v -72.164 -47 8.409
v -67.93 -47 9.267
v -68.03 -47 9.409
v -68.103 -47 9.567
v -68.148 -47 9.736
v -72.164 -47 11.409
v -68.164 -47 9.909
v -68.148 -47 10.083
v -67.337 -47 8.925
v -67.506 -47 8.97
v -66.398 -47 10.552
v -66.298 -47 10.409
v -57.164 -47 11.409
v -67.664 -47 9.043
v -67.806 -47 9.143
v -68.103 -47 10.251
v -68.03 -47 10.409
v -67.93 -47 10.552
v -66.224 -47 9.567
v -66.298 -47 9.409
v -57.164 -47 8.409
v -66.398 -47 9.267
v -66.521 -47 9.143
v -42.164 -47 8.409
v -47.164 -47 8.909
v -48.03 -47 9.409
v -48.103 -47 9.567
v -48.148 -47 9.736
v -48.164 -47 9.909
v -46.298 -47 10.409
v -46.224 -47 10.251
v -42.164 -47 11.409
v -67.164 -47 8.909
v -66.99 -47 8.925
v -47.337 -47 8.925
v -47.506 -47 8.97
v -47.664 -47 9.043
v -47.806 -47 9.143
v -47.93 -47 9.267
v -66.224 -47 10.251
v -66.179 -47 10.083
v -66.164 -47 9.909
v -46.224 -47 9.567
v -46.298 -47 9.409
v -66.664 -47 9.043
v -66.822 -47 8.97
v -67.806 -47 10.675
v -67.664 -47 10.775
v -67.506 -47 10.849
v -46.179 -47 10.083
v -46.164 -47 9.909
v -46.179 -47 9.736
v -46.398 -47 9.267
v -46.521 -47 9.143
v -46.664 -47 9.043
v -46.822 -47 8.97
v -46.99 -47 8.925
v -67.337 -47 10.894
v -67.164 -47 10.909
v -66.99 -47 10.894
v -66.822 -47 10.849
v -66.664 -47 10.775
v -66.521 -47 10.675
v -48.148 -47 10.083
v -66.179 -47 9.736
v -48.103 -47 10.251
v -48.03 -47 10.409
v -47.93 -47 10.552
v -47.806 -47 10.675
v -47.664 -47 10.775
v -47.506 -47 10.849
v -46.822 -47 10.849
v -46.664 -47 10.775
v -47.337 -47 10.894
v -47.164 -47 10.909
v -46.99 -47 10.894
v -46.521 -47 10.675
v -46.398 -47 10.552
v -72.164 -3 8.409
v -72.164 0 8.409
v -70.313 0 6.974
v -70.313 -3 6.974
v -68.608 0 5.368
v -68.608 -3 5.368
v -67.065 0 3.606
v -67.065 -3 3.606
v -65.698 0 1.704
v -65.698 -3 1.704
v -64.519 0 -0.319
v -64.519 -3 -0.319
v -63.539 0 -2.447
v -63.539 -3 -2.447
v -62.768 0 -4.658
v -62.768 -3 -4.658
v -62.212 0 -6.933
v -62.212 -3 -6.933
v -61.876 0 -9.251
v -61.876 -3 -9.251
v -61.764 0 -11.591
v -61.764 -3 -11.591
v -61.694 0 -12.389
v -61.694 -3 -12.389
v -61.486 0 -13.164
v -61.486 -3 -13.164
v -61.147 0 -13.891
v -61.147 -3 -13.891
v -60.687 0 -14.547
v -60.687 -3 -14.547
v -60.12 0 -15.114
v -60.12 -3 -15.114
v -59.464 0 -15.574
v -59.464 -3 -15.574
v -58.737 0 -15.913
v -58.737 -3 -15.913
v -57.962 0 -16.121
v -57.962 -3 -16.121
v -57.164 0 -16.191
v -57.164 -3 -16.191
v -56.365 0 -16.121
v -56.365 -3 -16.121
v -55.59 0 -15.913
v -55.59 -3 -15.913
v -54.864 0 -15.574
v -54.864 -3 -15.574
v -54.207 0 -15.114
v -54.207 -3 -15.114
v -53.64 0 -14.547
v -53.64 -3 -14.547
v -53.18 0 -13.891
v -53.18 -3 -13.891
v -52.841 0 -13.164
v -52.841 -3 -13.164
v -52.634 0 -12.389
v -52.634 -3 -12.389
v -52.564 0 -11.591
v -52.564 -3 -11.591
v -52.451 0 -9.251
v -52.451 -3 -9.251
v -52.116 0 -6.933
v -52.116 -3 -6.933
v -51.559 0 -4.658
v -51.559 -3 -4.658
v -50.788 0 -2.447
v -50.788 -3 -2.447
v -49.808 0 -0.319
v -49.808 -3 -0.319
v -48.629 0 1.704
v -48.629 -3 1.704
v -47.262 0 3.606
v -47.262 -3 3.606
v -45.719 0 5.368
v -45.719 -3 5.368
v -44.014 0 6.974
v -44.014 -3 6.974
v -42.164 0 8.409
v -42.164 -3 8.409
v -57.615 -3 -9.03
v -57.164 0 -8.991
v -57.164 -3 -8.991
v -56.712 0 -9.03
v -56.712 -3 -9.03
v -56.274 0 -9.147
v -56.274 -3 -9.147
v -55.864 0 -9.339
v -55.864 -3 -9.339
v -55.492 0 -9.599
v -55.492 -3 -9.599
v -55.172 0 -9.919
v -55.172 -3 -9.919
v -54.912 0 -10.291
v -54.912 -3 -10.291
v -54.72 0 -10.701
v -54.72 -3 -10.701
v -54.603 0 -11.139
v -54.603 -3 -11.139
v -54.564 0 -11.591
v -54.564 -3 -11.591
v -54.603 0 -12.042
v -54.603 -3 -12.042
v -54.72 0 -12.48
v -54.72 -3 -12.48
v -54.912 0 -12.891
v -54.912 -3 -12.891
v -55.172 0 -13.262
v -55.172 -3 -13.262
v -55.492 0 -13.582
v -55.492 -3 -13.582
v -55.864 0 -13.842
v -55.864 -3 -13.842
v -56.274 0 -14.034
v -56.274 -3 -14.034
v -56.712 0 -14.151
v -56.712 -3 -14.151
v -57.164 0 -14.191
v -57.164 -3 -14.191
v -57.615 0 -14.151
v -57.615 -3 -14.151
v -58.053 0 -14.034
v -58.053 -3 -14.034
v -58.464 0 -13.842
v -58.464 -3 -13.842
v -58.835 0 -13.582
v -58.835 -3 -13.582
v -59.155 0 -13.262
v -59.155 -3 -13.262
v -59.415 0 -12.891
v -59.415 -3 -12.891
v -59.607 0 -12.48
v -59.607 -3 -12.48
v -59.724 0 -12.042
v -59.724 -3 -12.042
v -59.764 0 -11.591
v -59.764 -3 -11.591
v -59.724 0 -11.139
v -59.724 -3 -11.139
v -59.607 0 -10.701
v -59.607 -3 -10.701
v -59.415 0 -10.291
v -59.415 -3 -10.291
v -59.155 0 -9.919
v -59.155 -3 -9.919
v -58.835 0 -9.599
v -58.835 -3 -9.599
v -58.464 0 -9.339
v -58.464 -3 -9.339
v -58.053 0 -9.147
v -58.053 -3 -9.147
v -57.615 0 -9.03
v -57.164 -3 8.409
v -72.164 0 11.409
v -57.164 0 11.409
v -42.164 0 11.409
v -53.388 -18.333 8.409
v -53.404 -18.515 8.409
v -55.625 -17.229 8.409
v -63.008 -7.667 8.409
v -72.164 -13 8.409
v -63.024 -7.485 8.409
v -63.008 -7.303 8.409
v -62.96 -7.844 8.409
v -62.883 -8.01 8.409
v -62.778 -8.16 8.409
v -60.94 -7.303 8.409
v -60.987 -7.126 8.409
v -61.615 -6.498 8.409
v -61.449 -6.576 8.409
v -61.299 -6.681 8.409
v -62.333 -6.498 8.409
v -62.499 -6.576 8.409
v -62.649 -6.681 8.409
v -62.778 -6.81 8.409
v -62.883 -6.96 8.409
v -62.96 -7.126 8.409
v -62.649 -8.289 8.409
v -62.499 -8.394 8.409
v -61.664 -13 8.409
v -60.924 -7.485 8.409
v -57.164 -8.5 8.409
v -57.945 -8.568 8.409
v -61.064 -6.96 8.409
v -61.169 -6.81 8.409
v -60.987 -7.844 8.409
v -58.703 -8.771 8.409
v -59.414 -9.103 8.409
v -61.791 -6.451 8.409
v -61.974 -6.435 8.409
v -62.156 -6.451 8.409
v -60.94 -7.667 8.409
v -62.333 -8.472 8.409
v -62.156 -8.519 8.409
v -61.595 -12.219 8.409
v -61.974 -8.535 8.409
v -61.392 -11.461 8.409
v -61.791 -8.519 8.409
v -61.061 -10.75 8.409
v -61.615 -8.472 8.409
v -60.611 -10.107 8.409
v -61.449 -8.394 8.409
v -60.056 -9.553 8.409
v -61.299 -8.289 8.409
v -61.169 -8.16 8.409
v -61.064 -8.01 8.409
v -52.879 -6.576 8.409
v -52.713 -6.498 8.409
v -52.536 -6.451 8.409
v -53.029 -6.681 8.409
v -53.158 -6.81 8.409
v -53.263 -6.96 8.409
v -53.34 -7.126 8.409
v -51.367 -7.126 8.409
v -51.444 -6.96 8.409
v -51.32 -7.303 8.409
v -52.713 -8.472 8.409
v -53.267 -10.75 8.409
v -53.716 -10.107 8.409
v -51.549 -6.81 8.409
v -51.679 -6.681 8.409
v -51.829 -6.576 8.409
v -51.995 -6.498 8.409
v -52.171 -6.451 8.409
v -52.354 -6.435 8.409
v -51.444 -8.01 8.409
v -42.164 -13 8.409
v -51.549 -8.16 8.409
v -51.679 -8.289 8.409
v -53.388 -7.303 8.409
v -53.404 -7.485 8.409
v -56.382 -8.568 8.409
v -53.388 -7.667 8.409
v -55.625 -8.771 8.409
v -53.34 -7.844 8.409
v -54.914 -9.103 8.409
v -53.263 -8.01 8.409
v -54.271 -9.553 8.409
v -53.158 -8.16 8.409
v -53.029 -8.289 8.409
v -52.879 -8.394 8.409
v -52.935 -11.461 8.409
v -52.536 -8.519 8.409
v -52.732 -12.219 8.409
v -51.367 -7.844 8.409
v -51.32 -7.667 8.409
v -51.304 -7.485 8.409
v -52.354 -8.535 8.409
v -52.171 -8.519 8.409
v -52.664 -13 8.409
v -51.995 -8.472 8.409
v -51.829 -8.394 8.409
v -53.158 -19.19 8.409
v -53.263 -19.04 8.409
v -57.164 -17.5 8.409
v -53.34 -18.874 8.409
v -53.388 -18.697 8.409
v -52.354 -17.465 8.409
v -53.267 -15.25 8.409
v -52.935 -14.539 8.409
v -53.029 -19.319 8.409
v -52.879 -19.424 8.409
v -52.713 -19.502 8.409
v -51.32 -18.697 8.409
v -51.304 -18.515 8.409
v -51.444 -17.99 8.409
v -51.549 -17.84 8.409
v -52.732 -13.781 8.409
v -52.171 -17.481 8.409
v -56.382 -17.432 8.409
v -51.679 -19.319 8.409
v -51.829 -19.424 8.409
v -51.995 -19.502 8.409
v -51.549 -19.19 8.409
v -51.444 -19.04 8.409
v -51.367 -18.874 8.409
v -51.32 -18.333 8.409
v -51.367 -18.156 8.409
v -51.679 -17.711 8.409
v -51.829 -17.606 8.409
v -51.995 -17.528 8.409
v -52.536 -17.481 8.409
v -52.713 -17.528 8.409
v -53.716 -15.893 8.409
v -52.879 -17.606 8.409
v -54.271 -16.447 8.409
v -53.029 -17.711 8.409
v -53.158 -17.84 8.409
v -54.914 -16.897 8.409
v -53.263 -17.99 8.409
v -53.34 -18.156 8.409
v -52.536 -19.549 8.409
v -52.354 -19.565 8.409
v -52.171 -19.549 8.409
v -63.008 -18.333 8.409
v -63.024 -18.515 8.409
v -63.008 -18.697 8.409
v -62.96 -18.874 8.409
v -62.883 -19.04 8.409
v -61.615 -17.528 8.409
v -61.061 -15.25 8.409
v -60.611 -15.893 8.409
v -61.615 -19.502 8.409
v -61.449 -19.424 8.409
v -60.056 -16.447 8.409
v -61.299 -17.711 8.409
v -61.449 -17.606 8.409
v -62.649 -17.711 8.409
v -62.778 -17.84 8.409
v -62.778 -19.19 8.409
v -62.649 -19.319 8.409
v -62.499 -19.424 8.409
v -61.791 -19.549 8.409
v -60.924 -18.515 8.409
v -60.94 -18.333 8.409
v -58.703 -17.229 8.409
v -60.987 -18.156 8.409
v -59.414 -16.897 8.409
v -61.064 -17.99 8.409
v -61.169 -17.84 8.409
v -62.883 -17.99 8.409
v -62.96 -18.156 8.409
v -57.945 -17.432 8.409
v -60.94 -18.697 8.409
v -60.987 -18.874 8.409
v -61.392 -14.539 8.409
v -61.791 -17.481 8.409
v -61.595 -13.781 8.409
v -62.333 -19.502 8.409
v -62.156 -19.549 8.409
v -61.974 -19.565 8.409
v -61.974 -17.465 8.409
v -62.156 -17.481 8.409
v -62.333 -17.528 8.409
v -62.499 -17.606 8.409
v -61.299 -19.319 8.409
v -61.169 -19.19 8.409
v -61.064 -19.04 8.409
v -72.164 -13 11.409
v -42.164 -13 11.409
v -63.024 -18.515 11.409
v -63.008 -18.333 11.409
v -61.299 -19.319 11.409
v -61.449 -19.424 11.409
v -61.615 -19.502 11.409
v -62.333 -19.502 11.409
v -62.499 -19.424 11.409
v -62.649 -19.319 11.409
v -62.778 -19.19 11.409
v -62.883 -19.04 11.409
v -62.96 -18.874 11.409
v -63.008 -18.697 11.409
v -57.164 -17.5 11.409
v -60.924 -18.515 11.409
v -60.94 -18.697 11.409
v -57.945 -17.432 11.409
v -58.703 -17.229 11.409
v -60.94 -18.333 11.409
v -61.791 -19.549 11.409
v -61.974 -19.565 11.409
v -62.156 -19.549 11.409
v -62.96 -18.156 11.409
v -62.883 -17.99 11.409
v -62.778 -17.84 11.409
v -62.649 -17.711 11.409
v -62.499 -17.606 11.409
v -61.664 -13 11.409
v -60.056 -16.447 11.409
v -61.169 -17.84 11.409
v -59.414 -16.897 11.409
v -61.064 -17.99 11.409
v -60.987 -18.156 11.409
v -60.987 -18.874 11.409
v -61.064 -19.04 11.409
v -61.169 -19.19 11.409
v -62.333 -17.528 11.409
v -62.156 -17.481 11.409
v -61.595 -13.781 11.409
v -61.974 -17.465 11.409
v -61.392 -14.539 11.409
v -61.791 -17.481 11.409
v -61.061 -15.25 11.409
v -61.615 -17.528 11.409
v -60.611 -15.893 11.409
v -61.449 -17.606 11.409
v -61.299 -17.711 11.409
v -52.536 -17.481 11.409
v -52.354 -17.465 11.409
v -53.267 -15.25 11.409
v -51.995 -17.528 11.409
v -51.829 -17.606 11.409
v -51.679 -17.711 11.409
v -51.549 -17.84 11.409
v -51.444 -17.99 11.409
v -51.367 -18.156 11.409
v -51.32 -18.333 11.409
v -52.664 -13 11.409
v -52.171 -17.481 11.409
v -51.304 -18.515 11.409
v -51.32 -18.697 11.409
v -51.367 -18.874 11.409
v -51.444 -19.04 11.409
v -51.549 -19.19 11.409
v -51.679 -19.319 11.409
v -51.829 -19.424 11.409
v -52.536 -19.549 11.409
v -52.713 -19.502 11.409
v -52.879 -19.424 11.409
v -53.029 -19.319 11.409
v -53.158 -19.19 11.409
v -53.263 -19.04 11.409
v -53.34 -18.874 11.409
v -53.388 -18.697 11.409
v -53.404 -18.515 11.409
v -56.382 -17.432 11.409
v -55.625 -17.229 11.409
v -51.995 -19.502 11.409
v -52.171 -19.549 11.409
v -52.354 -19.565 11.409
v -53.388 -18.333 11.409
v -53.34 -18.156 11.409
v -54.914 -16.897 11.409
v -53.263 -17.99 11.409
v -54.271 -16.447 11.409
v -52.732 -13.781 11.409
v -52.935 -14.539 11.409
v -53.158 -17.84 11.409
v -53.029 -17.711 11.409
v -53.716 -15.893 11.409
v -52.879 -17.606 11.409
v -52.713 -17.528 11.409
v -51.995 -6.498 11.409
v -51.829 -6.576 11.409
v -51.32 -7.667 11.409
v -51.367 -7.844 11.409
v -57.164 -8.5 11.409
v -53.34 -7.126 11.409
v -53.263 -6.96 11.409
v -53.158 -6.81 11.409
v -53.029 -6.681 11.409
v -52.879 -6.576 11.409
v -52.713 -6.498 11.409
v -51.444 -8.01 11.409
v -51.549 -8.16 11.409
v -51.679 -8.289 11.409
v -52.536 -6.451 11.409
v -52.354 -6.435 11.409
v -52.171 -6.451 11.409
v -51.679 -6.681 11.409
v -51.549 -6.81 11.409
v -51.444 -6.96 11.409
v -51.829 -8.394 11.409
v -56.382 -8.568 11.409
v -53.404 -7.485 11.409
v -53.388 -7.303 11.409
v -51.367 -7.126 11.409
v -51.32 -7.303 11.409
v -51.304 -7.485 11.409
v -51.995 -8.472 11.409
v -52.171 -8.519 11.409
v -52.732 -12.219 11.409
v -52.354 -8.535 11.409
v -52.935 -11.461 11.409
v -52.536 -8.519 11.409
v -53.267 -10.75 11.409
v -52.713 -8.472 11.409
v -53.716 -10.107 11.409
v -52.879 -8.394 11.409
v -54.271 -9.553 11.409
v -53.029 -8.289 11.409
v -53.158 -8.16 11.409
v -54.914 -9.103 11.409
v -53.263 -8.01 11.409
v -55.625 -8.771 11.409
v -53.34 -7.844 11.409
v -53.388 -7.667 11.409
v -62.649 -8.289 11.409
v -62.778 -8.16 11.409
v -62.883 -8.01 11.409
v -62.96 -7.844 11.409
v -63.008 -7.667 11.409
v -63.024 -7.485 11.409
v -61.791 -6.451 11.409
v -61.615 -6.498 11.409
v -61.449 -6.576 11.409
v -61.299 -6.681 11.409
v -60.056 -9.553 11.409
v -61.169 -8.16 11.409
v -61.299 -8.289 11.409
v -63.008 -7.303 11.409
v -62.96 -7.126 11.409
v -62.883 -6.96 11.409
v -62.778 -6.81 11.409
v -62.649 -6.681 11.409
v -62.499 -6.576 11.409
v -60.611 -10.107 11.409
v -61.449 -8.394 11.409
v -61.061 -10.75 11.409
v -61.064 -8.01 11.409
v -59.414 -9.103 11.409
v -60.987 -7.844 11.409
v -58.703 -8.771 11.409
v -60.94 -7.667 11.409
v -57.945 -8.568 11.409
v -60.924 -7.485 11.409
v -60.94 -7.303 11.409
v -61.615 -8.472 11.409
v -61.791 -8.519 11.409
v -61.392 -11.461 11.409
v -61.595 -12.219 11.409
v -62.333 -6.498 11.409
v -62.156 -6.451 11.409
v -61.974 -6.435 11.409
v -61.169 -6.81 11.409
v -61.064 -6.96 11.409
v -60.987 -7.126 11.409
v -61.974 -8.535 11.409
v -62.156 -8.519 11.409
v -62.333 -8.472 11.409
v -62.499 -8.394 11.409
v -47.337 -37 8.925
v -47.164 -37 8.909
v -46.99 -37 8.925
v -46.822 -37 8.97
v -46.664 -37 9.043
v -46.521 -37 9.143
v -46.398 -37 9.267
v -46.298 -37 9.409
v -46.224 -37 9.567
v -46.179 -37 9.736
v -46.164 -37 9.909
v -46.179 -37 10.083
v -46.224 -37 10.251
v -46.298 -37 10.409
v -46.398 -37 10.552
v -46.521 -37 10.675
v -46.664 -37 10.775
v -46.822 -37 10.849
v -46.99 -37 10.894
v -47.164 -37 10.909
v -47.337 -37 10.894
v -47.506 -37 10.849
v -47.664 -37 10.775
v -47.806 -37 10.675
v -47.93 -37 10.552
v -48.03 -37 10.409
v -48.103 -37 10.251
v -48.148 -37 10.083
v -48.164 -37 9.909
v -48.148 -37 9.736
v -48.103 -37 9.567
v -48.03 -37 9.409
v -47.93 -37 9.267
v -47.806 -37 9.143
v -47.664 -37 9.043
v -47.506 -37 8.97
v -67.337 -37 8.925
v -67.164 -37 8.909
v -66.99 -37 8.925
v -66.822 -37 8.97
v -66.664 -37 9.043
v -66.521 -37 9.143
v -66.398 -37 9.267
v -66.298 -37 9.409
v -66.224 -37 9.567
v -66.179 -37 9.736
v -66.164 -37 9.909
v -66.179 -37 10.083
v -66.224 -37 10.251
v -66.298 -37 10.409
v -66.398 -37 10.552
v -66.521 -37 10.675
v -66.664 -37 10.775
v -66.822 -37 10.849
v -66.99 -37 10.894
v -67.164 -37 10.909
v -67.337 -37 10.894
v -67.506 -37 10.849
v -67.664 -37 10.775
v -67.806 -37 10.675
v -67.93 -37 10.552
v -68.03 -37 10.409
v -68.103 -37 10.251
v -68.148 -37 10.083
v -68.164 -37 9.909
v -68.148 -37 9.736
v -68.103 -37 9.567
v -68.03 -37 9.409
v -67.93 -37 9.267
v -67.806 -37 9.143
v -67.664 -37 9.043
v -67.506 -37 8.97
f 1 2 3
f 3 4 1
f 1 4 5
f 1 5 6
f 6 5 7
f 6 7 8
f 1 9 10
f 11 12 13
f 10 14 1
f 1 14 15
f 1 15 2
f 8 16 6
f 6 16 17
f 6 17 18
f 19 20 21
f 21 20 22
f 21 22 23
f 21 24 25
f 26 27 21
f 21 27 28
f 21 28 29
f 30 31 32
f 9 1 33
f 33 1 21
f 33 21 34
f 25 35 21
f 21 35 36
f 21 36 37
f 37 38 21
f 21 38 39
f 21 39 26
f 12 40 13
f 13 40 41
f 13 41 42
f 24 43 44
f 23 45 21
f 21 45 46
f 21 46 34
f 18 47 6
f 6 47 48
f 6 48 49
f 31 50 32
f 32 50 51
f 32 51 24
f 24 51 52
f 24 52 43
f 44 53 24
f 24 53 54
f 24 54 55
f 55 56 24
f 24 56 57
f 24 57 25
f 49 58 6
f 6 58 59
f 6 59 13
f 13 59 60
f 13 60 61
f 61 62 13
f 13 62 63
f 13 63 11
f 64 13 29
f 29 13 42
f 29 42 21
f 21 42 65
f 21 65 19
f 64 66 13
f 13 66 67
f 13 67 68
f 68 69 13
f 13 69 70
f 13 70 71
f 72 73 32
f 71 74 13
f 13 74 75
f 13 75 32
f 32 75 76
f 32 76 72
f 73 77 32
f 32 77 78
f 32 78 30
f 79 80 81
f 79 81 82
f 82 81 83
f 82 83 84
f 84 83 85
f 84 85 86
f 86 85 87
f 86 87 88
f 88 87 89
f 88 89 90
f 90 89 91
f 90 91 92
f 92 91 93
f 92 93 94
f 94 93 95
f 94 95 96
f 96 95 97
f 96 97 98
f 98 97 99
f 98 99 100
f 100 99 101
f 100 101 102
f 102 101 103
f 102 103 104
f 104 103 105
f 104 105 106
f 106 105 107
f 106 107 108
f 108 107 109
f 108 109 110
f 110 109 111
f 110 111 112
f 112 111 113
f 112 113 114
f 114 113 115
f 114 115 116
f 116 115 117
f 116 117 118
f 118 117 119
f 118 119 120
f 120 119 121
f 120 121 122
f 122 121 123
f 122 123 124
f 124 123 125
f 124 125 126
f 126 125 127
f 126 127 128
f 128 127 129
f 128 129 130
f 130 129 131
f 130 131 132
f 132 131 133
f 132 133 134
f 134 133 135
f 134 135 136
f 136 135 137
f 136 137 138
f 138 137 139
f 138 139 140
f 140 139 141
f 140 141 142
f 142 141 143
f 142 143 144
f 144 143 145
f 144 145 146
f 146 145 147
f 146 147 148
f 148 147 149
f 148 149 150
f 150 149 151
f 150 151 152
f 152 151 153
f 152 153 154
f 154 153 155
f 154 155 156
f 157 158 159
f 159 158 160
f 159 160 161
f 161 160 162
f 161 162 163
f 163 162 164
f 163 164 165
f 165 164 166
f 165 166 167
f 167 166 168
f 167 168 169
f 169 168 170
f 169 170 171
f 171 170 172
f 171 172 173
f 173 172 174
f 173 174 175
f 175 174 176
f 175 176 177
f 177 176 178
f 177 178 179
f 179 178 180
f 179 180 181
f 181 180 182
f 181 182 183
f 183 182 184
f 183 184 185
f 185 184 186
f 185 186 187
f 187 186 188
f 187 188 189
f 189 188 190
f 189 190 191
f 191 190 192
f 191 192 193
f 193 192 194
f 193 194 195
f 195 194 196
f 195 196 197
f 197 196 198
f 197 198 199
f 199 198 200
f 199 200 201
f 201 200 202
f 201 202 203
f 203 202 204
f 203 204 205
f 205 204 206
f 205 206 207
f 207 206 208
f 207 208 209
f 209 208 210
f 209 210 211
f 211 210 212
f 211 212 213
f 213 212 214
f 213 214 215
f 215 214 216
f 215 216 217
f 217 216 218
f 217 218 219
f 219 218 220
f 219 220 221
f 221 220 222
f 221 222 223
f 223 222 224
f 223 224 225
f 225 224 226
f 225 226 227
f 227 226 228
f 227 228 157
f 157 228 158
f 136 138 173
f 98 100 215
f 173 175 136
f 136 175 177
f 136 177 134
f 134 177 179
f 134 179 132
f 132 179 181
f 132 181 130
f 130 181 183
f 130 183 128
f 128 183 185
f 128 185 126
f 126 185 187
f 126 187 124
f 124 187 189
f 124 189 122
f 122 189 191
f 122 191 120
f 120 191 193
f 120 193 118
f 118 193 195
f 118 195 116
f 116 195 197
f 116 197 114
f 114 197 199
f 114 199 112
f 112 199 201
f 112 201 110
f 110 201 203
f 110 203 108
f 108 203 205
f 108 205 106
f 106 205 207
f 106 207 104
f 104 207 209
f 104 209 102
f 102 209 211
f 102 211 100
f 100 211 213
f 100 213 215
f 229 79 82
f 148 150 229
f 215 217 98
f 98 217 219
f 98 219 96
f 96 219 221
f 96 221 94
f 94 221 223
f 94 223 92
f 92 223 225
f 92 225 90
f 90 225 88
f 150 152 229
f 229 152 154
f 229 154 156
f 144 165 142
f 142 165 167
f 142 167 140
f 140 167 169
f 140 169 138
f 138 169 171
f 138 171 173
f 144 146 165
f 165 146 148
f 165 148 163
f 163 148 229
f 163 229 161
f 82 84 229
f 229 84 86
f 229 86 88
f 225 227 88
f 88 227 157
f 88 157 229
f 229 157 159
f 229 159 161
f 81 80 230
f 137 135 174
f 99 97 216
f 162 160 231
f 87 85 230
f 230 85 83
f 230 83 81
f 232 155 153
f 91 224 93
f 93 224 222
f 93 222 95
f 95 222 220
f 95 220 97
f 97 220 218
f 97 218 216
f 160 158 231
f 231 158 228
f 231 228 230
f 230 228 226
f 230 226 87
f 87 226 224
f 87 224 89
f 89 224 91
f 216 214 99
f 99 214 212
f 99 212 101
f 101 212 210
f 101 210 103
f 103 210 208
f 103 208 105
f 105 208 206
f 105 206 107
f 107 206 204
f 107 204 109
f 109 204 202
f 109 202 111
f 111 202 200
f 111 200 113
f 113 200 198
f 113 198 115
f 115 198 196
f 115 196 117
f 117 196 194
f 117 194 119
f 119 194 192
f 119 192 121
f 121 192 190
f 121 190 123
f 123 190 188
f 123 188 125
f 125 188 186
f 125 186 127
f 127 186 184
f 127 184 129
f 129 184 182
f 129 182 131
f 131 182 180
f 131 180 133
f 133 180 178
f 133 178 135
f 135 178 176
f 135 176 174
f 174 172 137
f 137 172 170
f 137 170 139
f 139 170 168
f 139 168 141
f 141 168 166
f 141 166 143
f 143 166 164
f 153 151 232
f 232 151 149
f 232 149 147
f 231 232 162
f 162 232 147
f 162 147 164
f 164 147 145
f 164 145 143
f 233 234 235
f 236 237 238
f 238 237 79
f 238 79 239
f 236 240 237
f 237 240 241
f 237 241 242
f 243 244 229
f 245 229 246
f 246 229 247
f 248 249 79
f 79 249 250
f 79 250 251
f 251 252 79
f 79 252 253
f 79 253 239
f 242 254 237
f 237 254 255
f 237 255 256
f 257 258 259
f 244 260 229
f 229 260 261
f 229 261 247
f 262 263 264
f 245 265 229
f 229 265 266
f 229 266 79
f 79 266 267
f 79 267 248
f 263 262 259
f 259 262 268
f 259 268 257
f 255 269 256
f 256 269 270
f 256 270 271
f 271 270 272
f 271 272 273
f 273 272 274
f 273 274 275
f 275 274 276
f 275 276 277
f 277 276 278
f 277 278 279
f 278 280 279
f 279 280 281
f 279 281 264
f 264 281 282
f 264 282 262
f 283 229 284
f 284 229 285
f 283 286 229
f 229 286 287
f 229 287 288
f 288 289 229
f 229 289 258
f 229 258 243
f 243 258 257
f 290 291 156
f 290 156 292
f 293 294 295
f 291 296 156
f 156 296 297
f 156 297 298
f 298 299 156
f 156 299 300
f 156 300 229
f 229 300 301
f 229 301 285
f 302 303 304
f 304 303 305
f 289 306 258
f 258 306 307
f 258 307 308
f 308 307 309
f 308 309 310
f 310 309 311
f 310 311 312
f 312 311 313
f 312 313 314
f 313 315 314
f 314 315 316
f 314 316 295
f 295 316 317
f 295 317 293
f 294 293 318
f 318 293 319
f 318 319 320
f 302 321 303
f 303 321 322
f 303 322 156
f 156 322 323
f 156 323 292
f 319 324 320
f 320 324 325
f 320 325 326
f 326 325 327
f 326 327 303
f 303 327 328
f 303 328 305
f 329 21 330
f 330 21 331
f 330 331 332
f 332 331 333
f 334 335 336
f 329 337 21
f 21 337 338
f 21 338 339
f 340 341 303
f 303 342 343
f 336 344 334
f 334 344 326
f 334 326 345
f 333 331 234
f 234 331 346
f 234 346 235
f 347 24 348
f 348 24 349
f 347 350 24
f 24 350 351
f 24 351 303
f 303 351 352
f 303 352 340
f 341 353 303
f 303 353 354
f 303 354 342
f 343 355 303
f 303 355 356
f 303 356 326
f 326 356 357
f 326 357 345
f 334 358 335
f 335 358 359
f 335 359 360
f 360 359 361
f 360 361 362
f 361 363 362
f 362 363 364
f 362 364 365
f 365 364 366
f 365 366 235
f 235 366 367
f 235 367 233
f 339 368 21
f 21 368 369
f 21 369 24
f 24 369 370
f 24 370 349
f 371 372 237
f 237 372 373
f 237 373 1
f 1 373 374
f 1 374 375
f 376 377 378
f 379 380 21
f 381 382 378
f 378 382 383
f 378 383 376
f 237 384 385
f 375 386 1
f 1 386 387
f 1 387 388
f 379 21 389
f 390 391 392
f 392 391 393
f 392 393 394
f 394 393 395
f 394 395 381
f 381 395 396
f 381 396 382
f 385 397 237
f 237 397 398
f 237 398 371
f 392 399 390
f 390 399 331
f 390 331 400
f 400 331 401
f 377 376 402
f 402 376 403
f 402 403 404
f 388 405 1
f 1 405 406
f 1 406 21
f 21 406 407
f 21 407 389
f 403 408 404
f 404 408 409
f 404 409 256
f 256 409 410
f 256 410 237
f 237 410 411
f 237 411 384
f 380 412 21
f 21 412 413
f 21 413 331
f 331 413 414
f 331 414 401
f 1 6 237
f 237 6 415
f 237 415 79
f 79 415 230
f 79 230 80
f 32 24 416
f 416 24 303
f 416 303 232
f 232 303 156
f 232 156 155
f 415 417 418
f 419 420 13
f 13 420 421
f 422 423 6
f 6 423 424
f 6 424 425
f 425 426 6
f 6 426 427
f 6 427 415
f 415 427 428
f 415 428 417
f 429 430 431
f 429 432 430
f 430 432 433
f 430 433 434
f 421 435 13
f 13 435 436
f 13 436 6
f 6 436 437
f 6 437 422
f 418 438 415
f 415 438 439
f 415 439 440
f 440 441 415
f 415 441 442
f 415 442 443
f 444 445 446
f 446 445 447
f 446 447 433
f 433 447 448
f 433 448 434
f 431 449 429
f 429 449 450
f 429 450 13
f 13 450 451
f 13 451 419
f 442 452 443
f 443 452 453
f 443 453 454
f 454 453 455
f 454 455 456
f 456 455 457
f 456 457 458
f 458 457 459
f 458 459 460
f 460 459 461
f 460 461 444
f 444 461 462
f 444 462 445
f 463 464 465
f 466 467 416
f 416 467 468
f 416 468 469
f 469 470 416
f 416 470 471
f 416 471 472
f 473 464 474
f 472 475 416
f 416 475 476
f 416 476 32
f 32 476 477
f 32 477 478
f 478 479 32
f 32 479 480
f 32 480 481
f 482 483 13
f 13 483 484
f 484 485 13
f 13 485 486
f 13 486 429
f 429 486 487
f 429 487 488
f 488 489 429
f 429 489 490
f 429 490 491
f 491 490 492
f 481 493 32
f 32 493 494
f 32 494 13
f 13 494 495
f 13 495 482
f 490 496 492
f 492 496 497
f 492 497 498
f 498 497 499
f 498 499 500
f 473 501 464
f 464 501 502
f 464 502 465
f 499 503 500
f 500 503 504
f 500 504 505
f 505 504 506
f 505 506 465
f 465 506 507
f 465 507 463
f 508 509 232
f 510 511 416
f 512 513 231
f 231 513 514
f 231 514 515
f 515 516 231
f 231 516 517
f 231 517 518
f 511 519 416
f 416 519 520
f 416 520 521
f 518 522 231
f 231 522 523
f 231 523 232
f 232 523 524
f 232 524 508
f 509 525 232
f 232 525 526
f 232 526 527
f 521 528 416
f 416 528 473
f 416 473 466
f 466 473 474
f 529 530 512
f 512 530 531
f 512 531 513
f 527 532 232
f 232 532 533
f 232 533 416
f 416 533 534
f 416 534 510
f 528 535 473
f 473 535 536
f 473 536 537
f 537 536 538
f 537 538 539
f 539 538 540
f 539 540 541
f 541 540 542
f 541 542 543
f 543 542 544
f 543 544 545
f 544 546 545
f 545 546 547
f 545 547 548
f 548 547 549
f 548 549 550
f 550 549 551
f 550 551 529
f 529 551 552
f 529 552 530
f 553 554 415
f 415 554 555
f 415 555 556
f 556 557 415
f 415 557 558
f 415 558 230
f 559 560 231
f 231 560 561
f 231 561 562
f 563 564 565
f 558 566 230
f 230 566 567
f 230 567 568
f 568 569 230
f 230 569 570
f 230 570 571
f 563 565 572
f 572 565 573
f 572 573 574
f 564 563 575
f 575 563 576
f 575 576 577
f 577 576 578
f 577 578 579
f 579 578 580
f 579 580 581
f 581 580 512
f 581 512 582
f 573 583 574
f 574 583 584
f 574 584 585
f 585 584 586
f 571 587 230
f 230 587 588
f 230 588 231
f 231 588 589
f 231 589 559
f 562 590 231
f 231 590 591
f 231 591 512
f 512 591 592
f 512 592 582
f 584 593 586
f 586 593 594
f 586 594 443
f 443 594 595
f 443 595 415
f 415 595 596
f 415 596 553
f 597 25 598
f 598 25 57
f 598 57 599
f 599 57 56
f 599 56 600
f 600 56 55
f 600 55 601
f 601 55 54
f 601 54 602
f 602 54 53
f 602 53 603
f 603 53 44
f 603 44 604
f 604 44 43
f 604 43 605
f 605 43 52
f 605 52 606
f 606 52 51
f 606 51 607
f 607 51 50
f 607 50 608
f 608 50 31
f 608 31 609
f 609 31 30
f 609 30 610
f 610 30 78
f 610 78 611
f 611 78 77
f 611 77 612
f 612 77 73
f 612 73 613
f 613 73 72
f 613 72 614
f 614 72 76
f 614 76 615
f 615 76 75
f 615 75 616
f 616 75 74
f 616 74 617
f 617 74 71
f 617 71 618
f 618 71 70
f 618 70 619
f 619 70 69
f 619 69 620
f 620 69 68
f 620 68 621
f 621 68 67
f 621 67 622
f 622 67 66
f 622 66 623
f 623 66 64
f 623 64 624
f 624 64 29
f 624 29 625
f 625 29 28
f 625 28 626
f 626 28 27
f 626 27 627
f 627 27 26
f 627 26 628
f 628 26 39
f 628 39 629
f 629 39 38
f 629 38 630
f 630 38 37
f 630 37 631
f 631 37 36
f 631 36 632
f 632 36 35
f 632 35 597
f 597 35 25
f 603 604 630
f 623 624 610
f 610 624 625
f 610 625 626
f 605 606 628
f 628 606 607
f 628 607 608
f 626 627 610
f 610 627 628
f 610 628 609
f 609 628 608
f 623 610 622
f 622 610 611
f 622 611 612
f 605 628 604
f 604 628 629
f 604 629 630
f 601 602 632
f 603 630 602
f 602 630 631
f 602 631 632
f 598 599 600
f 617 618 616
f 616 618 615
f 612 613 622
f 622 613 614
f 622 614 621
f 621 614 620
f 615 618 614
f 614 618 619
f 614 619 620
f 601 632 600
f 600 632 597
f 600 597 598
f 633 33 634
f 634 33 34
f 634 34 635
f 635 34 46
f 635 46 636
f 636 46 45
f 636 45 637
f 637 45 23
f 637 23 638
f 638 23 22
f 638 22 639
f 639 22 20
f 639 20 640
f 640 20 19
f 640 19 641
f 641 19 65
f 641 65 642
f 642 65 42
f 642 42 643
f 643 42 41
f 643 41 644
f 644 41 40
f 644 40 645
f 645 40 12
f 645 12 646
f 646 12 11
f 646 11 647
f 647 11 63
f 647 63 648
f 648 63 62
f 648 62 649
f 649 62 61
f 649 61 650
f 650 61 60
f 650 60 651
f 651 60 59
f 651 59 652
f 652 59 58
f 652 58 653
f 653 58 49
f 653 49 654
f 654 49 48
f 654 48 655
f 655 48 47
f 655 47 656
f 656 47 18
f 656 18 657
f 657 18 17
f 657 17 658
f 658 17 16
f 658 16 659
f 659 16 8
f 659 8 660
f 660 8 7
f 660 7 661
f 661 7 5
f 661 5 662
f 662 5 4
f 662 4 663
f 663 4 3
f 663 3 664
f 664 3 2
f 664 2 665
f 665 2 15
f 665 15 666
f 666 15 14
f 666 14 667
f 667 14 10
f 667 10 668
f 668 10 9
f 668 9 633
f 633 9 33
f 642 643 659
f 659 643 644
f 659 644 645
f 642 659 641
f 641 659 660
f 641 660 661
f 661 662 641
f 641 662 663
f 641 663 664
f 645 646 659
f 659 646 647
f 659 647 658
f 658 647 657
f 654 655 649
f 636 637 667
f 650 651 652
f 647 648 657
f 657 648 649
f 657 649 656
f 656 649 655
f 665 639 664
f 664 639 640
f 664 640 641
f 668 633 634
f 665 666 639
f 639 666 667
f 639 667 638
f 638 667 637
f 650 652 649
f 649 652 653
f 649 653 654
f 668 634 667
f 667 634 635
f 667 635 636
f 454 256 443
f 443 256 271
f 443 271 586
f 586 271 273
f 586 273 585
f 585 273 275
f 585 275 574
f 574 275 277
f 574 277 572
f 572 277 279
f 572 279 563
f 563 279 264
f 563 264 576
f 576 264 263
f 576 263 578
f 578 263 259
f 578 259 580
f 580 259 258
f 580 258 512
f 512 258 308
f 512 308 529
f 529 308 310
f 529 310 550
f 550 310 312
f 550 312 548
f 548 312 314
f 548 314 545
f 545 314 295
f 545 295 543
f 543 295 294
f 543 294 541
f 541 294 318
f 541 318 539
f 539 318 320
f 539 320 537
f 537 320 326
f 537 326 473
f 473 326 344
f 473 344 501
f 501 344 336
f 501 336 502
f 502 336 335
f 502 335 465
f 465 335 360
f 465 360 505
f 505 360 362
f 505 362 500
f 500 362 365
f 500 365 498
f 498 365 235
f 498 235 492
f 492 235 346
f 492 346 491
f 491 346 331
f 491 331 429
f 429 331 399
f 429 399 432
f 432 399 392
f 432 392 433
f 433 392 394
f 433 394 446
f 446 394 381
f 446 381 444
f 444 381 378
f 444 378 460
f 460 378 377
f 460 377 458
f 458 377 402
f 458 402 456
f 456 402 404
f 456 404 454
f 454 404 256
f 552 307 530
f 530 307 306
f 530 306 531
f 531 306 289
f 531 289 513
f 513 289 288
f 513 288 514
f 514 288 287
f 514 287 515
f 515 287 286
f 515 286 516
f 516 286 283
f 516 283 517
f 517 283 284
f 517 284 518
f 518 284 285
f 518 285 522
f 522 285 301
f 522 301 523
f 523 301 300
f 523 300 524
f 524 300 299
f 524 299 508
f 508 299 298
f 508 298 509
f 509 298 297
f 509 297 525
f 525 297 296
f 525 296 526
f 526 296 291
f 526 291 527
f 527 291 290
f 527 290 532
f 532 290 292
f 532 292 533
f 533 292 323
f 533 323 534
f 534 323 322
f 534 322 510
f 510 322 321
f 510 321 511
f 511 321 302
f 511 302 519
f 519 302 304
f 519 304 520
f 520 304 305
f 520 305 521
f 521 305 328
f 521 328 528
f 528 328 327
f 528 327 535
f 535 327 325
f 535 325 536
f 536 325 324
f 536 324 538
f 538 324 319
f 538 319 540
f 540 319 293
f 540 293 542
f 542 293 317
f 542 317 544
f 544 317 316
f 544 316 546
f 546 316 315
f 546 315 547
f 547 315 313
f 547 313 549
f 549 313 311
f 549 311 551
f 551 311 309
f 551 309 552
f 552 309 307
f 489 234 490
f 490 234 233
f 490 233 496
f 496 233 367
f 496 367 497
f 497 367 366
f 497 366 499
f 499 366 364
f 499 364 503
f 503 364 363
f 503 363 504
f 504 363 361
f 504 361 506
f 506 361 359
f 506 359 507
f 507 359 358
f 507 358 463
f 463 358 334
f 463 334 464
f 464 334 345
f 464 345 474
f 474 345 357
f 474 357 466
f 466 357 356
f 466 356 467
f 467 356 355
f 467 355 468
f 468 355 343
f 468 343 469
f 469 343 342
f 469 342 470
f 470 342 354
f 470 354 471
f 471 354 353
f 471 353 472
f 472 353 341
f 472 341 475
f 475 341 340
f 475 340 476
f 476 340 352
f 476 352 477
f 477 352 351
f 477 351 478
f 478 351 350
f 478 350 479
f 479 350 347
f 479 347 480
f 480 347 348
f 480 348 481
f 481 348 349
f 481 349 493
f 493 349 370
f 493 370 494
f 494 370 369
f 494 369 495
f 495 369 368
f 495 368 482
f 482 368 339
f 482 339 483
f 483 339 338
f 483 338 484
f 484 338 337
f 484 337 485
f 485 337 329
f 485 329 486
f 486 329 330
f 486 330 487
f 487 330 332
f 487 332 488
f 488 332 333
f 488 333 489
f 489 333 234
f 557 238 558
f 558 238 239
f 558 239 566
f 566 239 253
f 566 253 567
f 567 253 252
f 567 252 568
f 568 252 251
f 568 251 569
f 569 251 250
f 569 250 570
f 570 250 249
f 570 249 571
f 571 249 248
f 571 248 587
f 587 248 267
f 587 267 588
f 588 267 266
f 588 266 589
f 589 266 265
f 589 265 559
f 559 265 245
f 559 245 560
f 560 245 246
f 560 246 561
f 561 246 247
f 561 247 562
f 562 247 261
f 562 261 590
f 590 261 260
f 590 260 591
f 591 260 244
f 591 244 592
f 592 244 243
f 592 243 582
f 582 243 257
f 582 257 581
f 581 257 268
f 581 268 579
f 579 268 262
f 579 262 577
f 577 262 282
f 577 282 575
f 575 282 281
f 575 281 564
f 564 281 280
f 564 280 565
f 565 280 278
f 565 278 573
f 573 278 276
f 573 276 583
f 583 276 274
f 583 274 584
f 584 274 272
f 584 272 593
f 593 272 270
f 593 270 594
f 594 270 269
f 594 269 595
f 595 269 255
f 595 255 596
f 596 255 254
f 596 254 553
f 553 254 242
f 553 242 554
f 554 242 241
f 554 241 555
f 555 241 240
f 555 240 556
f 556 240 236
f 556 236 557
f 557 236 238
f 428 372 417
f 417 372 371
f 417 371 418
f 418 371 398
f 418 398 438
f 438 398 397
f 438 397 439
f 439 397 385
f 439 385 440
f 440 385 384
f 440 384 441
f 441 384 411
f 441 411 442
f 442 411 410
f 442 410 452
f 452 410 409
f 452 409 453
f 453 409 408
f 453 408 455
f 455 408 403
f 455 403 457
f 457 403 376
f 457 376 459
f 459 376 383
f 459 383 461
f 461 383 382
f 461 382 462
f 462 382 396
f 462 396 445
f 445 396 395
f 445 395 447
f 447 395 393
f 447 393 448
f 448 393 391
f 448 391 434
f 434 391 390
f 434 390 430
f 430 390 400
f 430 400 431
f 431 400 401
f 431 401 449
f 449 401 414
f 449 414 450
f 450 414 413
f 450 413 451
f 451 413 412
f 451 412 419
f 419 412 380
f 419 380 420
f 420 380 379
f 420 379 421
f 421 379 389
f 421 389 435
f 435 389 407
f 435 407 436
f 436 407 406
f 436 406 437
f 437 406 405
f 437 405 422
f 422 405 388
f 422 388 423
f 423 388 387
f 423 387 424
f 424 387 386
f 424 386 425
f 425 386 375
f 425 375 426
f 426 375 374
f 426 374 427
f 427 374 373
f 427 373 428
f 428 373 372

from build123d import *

# Parameters (mm, degrees)
BOSS_EXTRUDE1_DEPTH             = 3
SKETCH2_W                       = 30
SKETCH2_H                       = 3
BOSS_EXTRUDE2_DEPTH             = 44
BOSS_EXTRUDE2_DIRECTION_2_REACH = 76.018
SKETCH3_R                       = 1
CUT_EXTRUDE1_DEPTH              = 10
SKETCH5_R                       = 4.5
SKETCH5_R_2                     = 1.05
CUT_EXTRUDE2_DEPTH              = 90.56424105


with BuildPart() as part:
    # Sketch1 → Boss-Extrude1 (new body)
    with BuildSketch(Plane(origin=(0, 0, 0), x_dir=(1, 0, 0), z_dir=(0, 1, 0))):
        with BuildLine():
            ThreePointArc((-52.563656192, 11.590548397), (-53.910964998, 14.843239591), (-57.163656192, 16.190548397))
            Line((-57.163656192, 16.190548397), (-57.163656192, 14.190548397))
            ThreePointArc((-57.163656192, 14.190548397), (-55.32517856, 13.429026028), (-54.563656192, 11.590548397))
            ThreePointArc((-54.563656192, 11.590548397), (-55.32517856, 9.752070766), (-57.163656192, 8.990548397))
            Line((-57.163656192, 8.990548397), (-57.163656192, 6.990548397))
            ThreePointArc((-57.163656192, 6.990548397), (-53.910964998, 8.337857204), (-52.563656192, 11.590548397))
        make_face()
        with BuildLine():
            Line((-57.163656192, 14.190548397), (-57.163656192, 16.190548397))
            ThreePointArc((-57.163656192, 16.190548397), (-60.416347385, 14.843239591), (-61.763656192, 11.590548397))
            ThreePointArc((-61.763656192, 11.590548397), (-60.416347385, 8.337857204), (-57.163656192, 6.990548397))
            Line((-57.163656192, 6.990548397), (-57.163656192, 8.990548397))
            ThreePointArc((-57.163656192, 8.990548397), (-59.763656192, 11.590548397), (-57.163656192, 14.190548397))
        make_face()
        with BuildLine():
            ThreePointArc((-42.163656192, -8.409451603), (-49.808275889, 0.319346154), (-52.563656192, 11.590548397))
            ThreePointArc((-52.563656192, 11.590548397), (-53.910964998, 8.337857204), (-57.163656192, 6.990548397))
            Line((-57.163656192, 6.990548397), (-57.163656192, -8.409451603))
            Line((-57.163656192, -8.409451603), (-42.163656192, -8.409451603))
        make_face()
        with BuildLine():
            ThreePointArc((-57.163656192, 6.990548397), (-60.416347385, 8.337857204), (-61.763656192, 11.590548397))
            ThreePointArc((-61.763656192, 11.590548397), (-64.519036494, 0.319346154), (-72.163656192, -8.409451603))
            Line((-72.163656192, -8.409451603), (-57.163656192, -8.409451603))
            Line((-57.163656192, -8.409451603), (-57.163656192, 6.990548397))
        make_face()
    extrude(amount=-BOSS_EXTRUDE1_DEPTH)

    # Sketch2 → Boss-Extrude2 (add)
    with BuildSketch(Plane(origin=(0, -3, 0), x_dir=(-1, 0, 0), z_dir=(0, -1, 0))):
        with Locations((57.163656192, -9.909451603)):
            Rectangle(SKETCH2_W, SKETCH2_H)
    extrude(amount=BOSS_EXTRUDE2_DEPTH)

    # Boss-Extrude2 direction 2: up to this face of the body (flat: up to its plane)
    boss_extrude2_direction_2_end = Plane(part.part.faces().sort_by_distance((-57.163656192, 0, -0.136432956))[0])
    # Sketch2 → Boss-Extrude2 direction 2 (add, up to the picked face)
    with BuildSketch(Plane(origin=(0, -3, 0), x_dir=(-1, 0, 0), z_dir=(0, -1, 0)), mode=Mode.PRIVATE) as boss_extrude2_direction_2_sk1:
        with Locations((57.163656192, -9.909451603)):
            Rectangle(SKETCH2_W, SKETCH2_H)
    boss_extrude2_direction_2_tool1 = split(extrude(boss_extrude2_direction_2_sk1.sketch, amount=-BOSS_EXTRUDE2_DIRECTION_2_REACH, mode=Mode.PRIVATE), bisect_by=boss_extrude2_direction_2_end, keep=Keep.BOTH, mode=Mode.PRIVATE)
    add(boss_extrude2_direction_2_tool1.solids().sort_by(Axis((-57.163656, -3, 9.909452), (0, 1, 0)))[0])

    # Sketch3 → Cut-Extrude1 (cut)
    with BuildSketch(Plane(origin=(0, -47, 0), x_dir=(-1, 0, 0), z_dir=(0, -1, 0))):
        with Locations(Location((47.163656192, -9.909451603, 0), (0, 0, 90))):
            Circle(SKETCH3_R)
        with Locations(Location((67.163656192, -9.909451603, 0), (0, 0, 90))):
            Circle(SKETCH3_R)
    extrude(amount=-CUT_EXTRUDE1_DEPTH, mode=Mode.SUBTRACT)

    # Sketch5 → Cut-Extrude2 (cut, through all)
    with BuildSketch(Plane(origin=(0, 0, 8.409451603), x_dir=(-1, 0, 0), z_dir=(0, 0, -1))):
        with Locations((57.163656192, -13)):
            Circle(SKETCH5_R)
        with Locations((52.353656192, -7.485)):
            Circle(SKETCH5_R_2)
        with Locations((52.353656192, -18.515)):
            Circle(SKETCH5_R_2)
        with Locations((61.973656192, -7.485)):
            Circle(SKETCH5_R_2)
        with Locations((61.973656192, -18.515)):
            Circle(SKETCH5_R_2)
    extrude(amount=-CUT_EXTRUDE2_DEPTH, mode=Mode.SUBTRACT)


solid = part.part
